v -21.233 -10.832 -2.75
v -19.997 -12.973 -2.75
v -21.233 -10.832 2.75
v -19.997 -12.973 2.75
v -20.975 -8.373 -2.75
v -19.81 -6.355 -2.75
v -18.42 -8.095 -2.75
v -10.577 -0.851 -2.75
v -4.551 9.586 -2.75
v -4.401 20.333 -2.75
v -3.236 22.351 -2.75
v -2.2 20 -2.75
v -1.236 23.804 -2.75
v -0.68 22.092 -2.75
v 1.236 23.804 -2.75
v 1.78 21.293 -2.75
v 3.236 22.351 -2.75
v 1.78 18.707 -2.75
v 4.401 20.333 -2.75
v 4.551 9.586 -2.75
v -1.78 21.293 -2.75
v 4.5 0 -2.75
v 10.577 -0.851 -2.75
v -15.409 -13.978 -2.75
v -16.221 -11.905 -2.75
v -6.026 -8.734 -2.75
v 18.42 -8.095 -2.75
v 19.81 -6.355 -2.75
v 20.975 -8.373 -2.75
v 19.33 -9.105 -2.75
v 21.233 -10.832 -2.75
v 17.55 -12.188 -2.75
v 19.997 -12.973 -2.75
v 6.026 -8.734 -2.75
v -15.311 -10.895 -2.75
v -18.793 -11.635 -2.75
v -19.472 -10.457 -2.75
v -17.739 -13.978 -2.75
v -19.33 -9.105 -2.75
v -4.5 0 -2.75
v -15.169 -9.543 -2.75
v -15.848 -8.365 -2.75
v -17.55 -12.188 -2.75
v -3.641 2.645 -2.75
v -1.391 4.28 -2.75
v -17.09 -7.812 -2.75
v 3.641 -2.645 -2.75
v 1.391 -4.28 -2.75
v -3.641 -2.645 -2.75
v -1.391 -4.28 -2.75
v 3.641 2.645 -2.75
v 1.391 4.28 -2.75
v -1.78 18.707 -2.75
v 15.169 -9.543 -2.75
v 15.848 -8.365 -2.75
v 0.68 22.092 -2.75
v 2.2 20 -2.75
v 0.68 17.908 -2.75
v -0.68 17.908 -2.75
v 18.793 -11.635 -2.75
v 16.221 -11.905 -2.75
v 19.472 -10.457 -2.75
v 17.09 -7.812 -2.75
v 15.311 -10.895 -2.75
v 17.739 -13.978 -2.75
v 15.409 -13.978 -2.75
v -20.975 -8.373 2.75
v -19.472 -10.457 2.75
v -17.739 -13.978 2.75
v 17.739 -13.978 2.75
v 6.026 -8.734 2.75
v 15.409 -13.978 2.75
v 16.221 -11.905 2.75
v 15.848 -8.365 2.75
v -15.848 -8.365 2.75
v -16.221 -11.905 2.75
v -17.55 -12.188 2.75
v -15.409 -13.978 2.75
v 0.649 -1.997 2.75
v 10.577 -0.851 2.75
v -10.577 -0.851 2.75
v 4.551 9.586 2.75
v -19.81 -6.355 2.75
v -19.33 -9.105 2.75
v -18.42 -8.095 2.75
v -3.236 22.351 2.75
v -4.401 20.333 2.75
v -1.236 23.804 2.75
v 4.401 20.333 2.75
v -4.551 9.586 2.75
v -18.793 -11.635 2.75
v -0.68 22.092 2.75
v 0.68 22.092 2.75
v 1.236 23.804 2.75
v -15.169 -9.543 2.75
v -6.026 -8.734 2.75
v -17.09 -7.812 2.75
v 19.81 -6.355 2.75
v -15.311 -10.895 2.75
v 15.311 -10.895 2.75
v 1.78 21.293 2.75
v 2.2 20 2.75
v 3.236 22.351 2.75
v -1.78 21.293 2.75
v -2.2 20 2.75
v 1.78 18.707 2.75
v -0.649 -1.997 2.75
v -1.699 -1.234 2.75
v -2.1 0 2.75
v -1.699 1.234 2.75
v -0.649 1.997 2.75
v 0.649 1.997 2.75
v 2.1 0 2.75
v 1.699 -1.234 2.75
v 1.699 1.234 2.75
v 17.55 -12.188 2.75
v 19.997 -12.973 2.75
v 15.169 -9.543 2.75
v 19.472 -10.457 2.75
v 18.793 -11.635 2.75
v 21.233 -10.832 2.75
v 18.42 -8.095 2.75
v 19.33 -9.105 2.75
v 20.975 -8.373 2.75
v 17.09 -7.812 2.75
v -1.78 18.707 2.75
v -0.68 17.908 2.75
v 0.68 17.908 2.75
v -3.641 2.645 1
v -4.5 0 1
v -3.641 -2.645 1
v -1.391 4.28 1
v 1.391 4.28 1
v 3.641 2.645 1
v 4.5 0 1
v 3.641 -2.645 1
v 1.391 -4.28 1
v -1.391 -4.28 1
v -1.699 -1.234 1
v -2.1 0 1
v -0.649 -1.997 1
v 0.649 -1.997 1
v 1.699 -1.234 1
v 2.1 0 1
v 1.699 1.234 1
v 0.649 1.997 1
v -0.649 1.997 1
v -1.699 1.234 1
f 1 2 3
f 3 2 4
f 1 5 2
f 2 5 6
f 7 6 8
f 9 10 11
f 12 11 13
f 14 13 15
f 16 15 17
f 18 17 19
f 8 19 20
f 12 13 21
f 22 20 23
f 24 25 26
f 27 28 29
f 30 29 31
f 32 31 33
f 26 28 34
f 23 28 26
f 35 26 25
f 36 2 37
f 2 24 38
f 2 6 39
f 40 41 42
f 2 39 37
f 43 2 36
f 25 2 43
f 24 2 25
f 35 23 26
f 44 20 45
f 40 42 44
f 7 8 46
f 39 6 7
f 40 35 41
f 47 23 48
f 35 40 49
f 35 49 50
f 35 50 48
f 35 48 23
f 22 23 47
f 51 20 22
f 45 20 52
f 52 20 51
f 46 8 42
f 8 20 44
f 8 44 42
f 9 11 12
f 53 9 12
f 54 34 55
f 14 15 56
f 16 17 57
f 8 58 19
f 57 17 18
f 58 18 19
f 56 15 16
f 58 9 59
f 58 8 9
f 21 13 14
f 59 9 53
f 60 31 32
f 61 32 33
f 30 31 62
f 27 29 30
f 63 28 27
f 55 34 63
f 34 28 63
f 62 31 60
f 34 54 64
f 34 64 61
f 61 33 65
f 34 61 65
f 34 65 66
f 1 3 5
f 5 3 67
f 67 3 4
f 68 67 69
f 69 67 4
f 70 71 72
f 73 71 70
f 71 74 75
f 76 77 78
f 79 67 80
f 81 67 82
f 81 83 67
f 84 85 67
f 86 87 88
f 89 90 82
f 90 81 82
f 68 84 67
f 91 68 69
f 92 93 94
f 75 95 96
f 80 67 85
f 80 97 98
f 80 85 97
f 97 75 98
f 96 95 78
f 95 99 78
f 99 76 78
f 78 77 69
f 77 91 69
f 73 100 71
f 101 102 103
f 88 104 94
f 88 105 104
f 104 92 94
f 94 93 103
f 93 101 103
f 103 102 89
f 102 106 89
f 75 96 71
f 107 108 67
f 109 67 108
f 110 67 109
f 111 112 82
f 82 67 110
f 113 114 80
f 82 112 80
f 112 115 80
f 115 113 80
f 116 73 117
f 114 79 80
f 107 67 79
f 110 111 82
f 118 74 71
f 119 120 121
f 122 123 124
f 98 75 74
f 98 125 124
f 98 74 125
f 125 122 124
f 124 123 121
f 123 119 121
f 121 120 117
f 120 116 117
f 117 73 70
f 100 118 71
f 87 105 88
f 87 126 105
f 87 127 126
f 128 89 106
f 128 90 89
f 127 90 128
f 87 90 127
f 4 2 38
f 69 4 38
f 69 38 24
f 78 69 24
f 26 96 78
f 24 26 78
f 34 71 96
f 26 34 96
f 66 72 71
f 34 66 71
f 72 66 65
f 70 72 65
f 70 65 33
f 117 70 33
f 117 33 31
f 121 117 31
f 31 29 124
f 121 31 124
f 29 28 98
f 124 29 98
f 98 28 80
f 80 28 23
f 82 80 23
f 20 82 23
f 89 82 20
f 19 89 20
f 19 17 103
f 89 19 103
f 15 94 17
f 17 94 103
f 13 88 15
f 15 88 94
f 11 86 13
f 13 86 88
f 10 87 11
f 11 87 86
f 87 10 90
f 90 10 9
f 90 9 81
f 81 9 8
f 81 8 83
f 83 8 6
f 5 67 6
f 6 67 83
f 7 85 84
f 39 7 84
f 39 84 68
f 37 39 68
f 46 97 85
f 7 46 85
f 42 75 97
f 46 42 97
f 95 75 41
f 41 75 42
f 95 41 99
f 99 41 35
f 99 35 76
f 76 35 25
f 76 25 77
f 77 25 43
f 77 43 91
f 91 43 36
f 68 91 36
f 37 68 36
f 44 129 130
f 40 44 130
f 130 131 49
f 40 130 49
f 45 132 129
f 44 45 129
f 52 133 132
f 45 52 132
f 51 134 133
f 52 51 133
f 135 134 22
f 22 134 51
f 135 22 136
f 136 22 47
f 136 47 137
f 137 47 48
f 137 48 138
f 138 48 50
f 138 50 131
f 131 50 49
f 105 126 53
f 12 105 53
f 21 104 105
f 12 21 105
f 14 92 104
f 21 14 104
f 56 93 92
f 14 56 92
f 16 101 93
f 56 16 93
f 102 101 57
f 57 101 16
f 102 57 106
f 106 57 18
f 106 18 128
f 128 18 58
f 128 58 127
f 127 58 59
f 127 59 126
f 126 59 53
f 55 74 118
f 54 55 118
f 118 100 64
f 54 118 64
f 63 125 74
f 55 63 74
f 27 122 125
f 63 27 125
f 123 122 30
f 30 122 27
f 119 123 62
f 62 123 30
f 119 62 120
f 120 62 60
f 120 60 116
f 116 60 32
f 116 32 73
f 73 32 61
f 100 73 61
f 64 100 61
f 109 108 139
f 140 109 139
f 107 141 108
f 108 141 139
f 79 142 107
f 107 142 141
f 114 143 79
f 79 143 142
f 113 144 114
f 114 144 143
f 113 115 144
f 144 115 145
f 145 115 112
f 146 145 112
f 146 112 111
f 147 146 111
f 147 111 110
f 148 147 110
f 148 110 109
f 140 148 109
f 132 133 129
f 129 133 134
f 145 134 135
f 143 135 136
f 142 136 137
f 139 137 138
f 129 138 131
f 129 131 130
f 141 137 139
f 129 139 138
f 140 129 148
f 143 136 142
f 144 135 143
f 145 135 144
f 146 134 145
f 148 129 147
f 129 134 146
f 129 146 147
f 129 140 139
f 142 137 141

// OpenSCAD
// file: configuration.scad
motor_end_height=44;
idler_end_height=28;
carriage_height=24;
platform_thickness=8;
bed_thickness=12;
pcb_thickness=2;
rod_length=120;
smooth_rod_length=300;
tower_radius = 120;
platform_hinge_offset=33;
carriage_hinge_offset=22;



//from kossel legacy
// Increase this if your slicer or printer make holes too tight.
extra_radius = 0.15;

// OD = outside diameter, corner to corner.
m3_nut_od = 6.1;
m3_nut_radius = m3_nut_od/2 + 0.2 + extra_radius;

// Major diameter of metric 3mm thread.
m3_major = 2.85;
m3_radius = m3_major/2 + extra_radius;
m3_wide_radius = m3_major/2 + 0.2 + extra_radius;

// NEMA17 stepper motors.
motor_shaft_diameter = 5;
motor_shaft_radius = motor_shaft_diameter/2 + extra_radius;

// Frame brackets.
thickness = 3.6;
// main file
include <configuration.scad>

h=5.5;
$fn=10;

module bowden_mount(){







	difference(){
		union(){
			hull(){
				for(a = [0:120:240]){
					rotate([0,0,a]) translate([0,20,0]) cylinder( r=4, h=h,center=true);
				}
			}
		}

		//Bolt holes and making the thing less material intensive
		for(a = [0:120:240]){
			rotate([0,0,a]) translate([0,20,0]) cylinder( r=2.2, h=h+1,center=true);
			rotate([0,0,a]) translate([0,-23,0]) scale([1.3,1,1]) cylinder(r=15,h=h+1,center=true);
		}
		
		//Hole for bowden Cable + Nut
		translate([0,0,-1]) cylinder(r=9/2,h=4,center=true);
		translate([0,0,1]) cylinder(r=4.2/2, h=10,center=true);


	}

	
}

bowden_mount();
	
